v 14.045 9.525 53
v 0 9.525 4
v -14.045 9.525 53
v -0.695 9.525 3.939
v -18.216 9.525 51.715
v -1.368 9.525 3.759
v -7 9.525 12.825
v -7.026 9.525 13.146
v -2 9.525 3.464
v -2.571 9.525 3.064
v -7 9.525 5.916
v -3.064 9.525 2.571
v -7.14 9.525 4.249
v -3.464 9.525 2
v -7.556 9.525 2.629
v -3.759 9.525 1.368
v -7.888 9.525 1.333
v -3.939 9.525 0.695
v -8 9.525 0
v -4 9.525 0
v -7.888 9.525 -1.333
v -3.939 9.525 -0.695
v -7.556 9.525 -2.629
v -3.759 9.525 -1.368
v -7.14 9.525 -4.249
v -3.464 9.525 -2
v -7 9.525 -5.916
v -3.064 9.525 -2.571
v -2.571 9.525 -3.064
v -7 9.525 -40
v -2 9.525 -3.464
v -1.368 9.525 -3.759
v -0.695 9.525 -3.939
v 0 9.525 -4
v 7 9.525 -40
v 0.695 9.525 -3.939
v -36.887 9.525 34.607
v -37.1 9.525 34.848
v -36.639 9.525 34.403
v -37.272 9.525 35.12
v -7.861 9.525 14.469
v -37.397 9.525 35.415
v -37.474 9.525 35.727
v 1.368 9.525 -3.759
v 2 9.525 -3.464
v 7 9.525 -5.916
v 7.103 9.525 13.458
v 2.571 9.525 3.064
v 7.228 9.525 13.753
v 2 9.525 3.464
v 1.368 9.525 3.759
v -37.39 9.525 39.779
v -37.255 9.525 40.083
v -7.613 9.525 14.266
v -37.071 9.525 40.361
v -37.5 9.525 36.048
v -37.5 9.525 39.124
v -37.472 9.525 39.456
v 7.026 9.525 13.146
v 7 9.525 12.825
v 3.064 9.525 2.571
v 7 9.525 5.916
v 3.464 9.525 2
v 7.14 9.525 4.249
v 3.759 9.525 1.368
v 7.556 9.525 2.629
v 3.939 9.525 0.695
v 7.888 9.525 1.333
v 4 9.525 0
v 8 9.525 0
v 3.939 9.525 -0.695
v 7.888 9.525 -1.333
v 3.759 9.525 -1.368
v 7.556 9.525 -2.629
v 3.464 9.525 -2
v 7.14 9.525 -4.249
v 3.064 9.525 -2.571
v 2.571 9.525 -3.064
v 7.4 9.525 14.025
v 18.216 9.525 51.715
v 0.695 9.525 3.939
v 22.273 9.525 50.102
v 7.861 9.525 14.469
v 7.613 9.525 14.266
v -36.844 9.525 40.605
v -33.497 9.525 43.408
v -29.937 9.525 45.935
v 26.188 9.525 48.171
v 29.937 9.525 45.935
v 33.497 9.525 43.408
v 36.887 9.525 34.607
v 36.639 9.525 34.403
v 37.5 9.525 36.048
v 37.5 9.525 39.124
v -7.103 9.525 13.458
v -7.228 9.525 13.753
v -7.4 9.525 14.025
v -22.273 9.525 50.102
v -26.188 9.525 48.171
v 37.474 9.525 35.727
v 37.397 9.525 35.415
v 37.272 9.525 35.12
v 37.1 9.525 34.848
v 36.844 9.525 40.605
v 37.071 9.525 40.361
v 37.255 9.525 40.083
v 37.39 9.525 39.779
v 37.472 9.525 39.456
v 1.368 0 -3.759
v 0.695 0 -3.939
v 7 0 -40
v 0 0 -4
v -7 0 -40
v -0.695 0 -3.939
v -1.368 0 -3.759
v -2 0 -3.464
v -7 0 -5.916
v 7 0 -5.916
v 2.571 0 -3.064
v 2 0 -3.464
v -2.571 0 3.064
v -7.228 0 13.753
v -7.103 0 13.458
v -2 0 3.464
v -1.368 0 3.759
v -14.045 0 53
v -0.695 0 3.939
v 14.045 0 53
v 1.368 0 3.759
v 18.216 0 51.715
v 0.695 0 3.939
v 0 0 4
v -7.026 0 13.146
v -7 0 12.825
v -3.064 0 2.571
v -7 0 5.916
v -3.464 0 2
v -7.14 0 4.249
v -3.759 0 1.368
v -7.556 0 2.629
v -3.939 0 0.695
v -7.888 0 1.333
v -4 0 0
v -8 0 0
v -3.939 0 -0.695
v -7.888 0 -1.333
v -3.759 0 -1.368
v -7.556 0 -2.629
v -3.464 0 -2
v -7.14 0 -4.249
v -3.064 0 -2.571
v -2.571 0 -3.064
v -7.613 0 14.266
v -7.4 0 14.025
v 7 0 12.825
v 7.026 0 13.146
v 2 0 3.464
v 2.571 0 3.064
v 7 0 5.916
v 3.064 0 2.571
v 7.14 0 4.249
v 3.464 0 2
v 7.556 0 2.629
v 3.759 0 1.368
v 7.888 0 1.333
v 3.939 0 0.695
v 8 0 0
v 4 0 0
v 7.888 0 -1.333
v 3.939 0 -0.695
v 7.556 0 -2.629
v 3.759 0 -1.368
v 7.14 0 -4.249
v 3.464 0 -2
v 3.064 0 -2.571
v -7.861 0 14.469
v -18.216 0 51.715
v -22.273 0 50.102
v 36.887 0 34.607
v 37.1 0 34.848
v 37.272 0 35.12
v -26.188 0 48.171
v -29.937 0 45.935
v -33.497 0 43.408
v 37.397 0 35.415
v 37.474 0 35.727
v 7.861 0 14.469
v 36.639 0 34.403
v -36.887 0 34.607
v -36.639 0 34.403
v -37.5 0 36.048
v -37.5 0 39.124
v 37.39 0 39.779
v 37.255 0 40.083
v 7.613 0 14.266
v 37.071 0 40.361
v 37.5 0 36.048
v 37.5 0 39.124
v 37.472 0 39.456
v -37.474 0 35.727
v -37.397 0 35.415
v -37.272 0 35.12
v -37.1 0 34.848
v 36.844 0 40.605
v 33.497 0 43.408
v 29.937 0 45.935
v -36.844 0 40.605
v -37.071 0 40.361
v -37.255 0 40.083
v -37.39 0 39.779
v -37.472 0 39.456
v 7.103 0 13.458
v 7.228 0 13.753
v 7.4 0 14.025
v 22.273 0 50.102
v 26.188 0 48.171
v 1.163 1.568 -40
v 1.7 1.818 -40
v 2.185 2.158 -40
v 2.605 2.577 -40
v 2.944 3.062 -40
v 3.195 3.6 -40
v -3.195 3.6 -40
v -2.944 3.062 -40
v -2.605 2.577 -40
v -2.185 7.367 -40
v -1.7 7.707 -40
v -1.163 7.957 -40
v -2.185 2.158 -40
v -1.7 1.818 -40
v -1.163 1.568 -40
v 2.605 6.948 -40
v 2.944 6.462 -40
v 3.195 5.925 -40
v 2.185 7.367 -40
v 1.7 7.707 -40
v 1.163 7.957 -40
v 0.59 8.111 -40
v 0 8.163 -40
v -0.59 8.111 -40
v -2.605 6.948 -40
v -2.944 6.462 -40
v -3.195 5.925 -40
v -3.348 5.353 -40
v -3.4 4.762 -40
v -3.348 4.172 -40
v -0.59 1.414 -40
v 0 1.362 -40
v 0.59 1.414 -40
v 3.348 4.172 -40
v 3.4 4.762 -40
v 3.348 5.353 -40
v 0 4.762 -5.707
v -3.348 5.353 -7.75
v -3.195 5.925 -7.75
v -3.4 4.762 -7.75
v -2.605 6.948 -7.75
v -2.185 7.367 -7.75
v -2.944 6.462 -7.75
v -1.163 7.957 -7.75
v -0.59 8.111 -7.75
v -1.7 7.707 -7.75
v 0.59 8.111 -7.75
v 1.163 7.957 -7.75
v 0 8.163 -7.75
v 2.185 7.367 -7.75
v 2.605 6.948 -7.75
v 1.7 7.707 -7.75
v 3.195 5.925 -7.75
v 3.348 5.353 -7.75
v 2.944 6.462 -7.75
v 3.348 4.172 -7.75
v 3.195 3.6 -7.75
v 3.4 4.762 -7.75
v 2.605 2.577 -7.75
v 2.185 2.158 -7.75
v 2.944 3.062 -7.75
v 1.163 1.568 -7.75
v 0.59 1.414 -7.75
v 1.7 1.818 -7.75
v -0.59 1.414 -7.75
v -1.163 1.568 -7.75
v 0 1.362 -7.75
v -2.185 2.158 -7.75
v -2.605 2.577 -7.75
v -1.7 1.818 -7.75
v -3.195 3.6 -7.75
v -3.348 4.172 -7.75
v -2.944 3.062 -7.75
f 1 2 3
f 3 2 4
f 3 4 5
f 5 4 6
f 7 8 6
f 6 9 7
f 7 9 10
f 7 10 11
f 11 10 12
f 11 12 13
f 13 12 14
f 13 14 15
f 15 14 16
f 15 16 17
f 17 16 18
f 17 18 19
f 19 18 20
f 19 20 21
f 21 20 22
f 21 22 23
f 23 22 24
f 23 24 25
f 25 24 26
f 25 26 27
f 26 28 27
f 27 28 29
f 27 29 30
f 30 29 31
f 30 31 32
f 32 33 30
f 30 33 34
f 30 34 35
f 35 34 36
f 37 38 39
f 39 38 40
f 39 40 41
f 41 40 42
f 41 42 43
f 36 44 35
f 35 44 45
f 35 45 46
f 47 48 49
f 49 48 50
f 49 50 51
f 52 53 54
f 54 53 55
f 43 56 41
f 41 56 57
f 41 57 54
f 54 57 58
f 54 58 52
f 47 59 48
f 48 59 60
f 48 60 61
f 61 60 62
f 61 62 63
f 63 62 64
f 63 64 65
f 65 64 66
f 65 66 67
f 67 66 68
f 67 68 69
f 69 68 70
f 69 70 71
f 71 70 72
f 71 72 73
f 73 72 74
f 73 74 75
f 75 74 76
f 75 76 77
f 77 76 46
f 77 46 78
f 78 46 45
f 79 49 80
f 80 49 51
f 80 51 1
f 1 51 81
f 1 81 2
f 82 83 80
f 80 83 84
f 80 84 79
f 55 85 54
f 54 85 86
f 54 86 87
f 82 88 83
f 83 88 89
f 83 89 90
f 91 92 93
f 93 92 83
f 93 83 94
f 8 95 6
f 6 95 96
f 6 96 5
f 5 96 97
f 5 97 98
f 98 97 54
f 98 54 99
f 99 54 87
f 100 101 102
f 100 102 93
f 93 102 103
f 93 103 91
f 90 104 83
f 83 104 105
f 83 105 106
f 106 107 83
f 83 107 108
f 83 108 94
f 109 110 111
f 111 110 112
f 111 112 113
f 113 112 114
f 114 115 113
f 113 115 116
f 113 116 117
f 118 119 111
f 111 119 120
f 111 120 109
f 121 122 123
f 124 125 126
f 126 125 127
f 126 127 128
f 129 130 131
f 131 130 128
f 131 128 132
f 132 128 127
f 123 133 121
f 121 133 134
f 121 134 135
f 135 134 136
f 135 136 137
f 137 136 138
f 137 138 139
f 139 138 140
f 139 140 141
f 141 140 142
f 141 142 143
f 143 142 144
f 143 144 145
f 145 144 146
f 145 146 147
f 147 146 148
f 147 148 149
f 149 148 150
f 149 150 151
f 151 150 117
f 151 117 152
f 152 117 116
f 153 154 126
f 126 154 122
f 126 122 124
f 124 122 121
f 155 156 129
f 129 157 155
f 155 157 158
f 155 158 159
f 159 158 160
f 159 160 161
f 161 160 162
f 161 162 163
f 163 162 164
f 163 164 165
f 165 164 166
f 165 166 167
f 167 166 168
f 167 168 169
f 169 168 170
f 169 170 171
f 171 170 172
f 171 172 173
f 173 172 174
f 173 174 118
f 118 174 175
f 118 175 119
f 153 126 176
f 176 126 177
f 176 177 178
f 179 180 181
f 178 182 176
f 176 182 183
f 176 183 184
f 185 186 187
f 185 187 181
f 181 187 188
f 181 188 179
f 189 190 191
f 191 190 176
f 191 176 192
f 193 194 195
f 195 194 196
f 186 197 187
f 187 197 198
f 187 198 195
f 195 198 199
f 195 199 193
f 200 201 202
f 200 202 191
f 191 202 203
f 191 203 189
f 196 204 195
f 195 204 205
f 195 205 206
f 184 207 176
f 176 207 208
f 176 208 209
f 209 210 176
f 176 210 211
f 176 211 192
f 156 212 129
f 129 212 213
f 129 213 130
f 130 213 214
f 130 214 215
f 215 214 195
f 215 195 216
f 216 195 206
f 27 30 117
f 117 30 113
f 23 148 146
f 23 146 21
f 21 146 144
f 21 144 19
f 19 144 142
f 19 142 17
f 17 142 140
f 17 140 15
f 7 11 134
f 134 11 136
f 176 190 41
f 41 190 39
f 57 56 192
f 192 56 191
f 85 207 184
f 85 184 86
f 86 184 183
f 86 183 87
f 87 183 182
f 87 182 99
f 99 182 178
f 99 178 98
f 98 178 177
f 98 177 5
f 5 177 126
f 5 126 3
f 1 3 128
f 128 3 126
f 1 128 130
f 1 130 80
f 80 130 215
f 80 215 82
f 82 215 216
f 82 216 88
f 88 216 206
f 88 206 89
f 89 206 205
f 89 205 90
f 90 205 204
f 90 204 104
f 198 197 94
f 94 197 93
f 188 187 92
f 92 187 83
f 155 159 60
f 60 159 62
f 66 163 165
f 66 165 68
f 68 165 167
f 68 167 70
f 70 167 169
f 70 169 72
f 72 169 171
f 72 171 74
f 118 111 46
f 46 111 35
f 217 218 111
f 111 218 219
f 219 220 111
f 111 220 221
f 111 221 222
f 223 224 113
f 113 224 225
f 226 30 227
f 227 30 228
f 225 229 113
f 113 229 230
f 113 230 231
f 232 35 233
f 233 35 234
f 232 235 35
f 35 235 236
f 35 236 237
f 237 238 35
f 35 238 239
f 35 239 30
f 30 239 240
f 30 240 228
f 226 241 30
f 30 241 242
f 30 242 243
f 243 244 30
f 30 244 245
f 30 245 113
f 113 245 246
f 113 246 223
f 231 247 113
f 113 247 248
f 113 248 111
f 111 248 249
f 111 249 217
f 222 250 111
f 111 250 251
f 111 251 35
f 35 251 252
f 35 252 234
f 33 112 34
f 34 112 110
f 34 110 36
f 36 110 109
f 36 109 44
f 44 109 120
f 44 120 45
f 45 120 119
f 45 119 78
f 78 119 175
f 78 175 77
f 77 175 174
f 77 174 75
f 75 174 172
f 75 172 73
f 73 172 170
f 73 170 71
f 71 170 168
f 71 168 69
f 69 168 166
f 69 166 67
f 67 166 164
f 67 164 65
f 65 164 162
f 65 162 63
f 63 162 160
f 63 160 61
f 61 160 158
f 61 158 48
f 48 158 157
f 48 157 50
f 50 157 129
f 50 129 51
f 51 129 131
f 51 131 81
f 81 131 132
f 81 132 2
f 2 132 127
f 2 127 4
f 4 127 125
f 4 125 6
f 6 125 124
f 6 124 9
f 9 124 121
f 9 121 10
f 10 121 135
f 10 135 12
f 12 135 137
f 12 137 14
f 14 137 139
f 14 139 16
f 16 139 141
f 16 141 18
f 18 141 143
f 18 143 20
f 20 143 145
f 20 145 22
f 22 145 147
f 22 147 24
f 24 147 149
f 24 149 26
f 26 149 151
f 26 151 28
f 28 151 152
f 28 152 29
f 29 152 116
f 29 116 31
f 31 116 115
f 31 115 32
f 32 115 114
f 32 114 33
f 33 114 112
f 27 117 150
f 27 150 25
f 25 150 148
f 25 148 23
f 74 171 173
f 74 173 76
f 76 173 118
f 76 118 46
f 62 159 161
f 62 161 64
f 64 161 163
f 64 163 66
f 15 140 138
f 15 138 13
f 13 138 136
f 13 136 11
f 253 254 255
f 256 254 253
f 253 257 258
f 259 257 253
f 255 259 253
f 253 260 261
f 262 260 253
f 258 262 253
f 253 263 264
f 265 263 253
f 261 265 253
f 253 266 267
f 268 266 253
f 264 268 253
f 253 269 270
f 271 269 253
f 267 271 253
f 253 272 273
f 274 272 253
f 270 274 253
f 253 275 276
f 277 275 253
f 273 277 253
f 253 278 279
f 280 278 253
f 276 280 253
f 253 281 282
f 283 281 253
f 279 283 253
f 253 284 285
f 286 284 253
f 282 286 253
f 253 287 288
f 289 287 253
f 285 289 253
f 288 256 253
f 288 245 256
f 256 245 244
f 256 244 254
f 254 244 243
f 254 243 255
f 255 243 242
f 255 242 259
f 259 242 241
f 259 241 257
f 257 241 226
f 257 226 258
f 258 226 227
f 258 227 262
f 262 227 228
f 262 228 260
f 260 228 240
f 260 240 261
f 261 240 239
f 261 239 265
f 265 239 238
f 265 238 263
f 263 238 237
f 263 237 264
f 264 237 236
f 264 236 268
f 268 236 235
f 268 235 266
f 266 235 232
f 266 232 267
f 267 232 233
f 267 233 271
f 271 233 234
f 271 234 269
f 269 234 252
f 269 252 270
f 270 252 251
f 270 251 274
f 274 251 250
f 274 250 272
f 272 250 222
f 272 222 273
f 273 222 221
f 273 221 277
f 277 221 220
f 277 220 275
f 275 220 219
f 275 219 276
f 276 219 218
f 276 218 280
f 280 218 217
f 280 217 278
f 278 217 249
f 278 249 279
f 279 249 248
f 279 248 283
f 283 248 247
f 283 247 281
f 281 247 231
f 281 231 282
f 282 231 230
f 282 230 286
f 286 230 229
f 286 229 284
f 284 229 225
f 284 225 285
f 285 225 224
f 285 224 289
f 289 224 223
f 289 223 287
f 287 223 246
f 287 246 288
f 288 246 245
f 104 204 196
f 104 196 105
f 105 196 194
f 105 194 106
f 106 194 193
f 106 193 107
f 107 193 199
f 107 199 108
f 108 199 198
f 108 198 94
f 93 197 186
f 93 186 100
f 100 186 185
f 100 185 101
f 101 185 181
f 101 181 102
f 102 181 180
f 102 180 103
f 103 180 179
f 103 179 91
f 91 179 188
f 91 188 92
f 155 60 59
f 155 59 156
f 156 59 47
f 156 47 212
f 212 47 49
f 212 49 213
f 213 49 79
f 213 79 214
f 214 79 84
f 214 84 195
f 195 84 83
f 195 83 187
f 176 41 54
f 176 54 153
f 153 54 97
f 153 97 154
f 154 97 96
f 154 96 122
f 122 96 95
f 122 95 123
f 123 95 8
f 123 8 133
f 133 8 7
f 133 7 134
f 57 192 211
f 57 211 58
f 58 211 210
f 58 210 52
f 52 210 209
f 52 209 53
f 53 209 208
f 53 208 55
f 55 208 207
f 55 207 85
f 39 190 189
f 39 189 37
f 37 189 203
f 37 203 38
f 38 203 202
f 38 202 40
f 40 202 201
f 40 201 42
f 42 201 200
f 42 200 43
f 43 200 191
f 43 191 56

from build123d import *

# Parameters (mm, degrees)
SKETCH1_R                  = 4
BOSS_EXTRUDE1_DEPTH        = 9.525
FILLET1_R                  = 10
M8X1_25_TAPPED_HOLE1_D     = 6.8
M8X1_25_TAPPED_HOLE1_DEPTH = 32.25
M8X1_25_TAPPED_HOLE1_TIP   = 2.042926105
FILLET2_R                  = 2


with BuildPart() as part:
    # Sketch1 → Boss-Extrude1 (new body)
    with BuildSketch(Plane(origin=(0, 0, 0), x_dir=(1, 0, 0), z_dir=(0, 1, 0))):
        with BuildLine():
            Line((-7, 40), (7, 40))
            Line((7, 40), (7, 3.872983346))
            ThreePointArc((7, 3.872983346), (8, 0), (7, -3.872983346))
            Line((7, -3.872983346), (7, -13.872983346))
            Line((7, -13.872983346), (37.5, -35))
            Line((37.5, -35), (37.5, -40))
            ThreePointArc((37.5, -40), (26.579328871, -47.956118241), (14.044571905, -53))
            Line((14.044571905, -53), (-14.044571905, -53))
            ThreePointArc((-14.044571905, -53), (-26.579328871, -47.956118241), (-37.5, -40))
            Line((-37.5, -40), (-37.5, -35))
            Line((-37.5, -35), (-7, -13.872983346))
            Line((-7, -13.872983346), (-7, -3.872983346))
            ThreePointArc((-7, -3.872983346), (-8, 0), (-7, 3.872983346))
            Line((-7, 3.872983346), (-7, 40))
        make_face()
        Circle(SKETCH1_R, mode=Mode.SUBTRACT)
    extrude(amount=BOSS_EXTRUDE1_DEPTH)

    # Fillet1
    fillet1_edges = [part.edges().sort_by_distance(p)[0] for p in [
        (7, 4.7625, -3.872983346),
        (7, 4.7625, 3.872983346),
        (-7, 4.7625, 3.872983346),
        (-7, 4.7625, -3.872983346),
    ]]
    fillet(fillet1_edges, radius=FILLET1_R)

    # M8x1.25 Tapped Hole1
    with Locations(Plane(origin=(0, 0, -40), x_dir=(-1, 0, 0), z_dir=(0, 0, -1))):
        with Locations((0, 4.7625)):
            Hole(M8X1_25_TAPPED_HOLE1_D / 2, depth=M8X1_25_TAPPED_HOLE1_DEPTH)
            with Locations((0, 0, -(M8X1_25_TAPPED_HOLE1_DEPTH + M8X1_25_TAPPED_HOLE1_TIP / 2))):  # 118° drill point
                Cone(0, M8X1_25_TAPPED_HOLE1_D / 2, M8X1_25_TAPPED_HOLE1_TIP, mode=Mode.SUBTRACT)

    # Fillet2
    fillet2_edges = [part.edges().sort_by_distance(p)[0] for p in [
        (7, 4.7625, 13.872983346),
        (37.5, 4.7625, 35),
        (37.5, 4.7625, 40),
        (-37.5, 4.7625, 40),
        (-37.5, 4.7625, 35),
        (-7, 4.7625, 13.872983346),
    ]]
    fillet(fillet2_edges, radius=FILLET2_R)


solid = part.part
